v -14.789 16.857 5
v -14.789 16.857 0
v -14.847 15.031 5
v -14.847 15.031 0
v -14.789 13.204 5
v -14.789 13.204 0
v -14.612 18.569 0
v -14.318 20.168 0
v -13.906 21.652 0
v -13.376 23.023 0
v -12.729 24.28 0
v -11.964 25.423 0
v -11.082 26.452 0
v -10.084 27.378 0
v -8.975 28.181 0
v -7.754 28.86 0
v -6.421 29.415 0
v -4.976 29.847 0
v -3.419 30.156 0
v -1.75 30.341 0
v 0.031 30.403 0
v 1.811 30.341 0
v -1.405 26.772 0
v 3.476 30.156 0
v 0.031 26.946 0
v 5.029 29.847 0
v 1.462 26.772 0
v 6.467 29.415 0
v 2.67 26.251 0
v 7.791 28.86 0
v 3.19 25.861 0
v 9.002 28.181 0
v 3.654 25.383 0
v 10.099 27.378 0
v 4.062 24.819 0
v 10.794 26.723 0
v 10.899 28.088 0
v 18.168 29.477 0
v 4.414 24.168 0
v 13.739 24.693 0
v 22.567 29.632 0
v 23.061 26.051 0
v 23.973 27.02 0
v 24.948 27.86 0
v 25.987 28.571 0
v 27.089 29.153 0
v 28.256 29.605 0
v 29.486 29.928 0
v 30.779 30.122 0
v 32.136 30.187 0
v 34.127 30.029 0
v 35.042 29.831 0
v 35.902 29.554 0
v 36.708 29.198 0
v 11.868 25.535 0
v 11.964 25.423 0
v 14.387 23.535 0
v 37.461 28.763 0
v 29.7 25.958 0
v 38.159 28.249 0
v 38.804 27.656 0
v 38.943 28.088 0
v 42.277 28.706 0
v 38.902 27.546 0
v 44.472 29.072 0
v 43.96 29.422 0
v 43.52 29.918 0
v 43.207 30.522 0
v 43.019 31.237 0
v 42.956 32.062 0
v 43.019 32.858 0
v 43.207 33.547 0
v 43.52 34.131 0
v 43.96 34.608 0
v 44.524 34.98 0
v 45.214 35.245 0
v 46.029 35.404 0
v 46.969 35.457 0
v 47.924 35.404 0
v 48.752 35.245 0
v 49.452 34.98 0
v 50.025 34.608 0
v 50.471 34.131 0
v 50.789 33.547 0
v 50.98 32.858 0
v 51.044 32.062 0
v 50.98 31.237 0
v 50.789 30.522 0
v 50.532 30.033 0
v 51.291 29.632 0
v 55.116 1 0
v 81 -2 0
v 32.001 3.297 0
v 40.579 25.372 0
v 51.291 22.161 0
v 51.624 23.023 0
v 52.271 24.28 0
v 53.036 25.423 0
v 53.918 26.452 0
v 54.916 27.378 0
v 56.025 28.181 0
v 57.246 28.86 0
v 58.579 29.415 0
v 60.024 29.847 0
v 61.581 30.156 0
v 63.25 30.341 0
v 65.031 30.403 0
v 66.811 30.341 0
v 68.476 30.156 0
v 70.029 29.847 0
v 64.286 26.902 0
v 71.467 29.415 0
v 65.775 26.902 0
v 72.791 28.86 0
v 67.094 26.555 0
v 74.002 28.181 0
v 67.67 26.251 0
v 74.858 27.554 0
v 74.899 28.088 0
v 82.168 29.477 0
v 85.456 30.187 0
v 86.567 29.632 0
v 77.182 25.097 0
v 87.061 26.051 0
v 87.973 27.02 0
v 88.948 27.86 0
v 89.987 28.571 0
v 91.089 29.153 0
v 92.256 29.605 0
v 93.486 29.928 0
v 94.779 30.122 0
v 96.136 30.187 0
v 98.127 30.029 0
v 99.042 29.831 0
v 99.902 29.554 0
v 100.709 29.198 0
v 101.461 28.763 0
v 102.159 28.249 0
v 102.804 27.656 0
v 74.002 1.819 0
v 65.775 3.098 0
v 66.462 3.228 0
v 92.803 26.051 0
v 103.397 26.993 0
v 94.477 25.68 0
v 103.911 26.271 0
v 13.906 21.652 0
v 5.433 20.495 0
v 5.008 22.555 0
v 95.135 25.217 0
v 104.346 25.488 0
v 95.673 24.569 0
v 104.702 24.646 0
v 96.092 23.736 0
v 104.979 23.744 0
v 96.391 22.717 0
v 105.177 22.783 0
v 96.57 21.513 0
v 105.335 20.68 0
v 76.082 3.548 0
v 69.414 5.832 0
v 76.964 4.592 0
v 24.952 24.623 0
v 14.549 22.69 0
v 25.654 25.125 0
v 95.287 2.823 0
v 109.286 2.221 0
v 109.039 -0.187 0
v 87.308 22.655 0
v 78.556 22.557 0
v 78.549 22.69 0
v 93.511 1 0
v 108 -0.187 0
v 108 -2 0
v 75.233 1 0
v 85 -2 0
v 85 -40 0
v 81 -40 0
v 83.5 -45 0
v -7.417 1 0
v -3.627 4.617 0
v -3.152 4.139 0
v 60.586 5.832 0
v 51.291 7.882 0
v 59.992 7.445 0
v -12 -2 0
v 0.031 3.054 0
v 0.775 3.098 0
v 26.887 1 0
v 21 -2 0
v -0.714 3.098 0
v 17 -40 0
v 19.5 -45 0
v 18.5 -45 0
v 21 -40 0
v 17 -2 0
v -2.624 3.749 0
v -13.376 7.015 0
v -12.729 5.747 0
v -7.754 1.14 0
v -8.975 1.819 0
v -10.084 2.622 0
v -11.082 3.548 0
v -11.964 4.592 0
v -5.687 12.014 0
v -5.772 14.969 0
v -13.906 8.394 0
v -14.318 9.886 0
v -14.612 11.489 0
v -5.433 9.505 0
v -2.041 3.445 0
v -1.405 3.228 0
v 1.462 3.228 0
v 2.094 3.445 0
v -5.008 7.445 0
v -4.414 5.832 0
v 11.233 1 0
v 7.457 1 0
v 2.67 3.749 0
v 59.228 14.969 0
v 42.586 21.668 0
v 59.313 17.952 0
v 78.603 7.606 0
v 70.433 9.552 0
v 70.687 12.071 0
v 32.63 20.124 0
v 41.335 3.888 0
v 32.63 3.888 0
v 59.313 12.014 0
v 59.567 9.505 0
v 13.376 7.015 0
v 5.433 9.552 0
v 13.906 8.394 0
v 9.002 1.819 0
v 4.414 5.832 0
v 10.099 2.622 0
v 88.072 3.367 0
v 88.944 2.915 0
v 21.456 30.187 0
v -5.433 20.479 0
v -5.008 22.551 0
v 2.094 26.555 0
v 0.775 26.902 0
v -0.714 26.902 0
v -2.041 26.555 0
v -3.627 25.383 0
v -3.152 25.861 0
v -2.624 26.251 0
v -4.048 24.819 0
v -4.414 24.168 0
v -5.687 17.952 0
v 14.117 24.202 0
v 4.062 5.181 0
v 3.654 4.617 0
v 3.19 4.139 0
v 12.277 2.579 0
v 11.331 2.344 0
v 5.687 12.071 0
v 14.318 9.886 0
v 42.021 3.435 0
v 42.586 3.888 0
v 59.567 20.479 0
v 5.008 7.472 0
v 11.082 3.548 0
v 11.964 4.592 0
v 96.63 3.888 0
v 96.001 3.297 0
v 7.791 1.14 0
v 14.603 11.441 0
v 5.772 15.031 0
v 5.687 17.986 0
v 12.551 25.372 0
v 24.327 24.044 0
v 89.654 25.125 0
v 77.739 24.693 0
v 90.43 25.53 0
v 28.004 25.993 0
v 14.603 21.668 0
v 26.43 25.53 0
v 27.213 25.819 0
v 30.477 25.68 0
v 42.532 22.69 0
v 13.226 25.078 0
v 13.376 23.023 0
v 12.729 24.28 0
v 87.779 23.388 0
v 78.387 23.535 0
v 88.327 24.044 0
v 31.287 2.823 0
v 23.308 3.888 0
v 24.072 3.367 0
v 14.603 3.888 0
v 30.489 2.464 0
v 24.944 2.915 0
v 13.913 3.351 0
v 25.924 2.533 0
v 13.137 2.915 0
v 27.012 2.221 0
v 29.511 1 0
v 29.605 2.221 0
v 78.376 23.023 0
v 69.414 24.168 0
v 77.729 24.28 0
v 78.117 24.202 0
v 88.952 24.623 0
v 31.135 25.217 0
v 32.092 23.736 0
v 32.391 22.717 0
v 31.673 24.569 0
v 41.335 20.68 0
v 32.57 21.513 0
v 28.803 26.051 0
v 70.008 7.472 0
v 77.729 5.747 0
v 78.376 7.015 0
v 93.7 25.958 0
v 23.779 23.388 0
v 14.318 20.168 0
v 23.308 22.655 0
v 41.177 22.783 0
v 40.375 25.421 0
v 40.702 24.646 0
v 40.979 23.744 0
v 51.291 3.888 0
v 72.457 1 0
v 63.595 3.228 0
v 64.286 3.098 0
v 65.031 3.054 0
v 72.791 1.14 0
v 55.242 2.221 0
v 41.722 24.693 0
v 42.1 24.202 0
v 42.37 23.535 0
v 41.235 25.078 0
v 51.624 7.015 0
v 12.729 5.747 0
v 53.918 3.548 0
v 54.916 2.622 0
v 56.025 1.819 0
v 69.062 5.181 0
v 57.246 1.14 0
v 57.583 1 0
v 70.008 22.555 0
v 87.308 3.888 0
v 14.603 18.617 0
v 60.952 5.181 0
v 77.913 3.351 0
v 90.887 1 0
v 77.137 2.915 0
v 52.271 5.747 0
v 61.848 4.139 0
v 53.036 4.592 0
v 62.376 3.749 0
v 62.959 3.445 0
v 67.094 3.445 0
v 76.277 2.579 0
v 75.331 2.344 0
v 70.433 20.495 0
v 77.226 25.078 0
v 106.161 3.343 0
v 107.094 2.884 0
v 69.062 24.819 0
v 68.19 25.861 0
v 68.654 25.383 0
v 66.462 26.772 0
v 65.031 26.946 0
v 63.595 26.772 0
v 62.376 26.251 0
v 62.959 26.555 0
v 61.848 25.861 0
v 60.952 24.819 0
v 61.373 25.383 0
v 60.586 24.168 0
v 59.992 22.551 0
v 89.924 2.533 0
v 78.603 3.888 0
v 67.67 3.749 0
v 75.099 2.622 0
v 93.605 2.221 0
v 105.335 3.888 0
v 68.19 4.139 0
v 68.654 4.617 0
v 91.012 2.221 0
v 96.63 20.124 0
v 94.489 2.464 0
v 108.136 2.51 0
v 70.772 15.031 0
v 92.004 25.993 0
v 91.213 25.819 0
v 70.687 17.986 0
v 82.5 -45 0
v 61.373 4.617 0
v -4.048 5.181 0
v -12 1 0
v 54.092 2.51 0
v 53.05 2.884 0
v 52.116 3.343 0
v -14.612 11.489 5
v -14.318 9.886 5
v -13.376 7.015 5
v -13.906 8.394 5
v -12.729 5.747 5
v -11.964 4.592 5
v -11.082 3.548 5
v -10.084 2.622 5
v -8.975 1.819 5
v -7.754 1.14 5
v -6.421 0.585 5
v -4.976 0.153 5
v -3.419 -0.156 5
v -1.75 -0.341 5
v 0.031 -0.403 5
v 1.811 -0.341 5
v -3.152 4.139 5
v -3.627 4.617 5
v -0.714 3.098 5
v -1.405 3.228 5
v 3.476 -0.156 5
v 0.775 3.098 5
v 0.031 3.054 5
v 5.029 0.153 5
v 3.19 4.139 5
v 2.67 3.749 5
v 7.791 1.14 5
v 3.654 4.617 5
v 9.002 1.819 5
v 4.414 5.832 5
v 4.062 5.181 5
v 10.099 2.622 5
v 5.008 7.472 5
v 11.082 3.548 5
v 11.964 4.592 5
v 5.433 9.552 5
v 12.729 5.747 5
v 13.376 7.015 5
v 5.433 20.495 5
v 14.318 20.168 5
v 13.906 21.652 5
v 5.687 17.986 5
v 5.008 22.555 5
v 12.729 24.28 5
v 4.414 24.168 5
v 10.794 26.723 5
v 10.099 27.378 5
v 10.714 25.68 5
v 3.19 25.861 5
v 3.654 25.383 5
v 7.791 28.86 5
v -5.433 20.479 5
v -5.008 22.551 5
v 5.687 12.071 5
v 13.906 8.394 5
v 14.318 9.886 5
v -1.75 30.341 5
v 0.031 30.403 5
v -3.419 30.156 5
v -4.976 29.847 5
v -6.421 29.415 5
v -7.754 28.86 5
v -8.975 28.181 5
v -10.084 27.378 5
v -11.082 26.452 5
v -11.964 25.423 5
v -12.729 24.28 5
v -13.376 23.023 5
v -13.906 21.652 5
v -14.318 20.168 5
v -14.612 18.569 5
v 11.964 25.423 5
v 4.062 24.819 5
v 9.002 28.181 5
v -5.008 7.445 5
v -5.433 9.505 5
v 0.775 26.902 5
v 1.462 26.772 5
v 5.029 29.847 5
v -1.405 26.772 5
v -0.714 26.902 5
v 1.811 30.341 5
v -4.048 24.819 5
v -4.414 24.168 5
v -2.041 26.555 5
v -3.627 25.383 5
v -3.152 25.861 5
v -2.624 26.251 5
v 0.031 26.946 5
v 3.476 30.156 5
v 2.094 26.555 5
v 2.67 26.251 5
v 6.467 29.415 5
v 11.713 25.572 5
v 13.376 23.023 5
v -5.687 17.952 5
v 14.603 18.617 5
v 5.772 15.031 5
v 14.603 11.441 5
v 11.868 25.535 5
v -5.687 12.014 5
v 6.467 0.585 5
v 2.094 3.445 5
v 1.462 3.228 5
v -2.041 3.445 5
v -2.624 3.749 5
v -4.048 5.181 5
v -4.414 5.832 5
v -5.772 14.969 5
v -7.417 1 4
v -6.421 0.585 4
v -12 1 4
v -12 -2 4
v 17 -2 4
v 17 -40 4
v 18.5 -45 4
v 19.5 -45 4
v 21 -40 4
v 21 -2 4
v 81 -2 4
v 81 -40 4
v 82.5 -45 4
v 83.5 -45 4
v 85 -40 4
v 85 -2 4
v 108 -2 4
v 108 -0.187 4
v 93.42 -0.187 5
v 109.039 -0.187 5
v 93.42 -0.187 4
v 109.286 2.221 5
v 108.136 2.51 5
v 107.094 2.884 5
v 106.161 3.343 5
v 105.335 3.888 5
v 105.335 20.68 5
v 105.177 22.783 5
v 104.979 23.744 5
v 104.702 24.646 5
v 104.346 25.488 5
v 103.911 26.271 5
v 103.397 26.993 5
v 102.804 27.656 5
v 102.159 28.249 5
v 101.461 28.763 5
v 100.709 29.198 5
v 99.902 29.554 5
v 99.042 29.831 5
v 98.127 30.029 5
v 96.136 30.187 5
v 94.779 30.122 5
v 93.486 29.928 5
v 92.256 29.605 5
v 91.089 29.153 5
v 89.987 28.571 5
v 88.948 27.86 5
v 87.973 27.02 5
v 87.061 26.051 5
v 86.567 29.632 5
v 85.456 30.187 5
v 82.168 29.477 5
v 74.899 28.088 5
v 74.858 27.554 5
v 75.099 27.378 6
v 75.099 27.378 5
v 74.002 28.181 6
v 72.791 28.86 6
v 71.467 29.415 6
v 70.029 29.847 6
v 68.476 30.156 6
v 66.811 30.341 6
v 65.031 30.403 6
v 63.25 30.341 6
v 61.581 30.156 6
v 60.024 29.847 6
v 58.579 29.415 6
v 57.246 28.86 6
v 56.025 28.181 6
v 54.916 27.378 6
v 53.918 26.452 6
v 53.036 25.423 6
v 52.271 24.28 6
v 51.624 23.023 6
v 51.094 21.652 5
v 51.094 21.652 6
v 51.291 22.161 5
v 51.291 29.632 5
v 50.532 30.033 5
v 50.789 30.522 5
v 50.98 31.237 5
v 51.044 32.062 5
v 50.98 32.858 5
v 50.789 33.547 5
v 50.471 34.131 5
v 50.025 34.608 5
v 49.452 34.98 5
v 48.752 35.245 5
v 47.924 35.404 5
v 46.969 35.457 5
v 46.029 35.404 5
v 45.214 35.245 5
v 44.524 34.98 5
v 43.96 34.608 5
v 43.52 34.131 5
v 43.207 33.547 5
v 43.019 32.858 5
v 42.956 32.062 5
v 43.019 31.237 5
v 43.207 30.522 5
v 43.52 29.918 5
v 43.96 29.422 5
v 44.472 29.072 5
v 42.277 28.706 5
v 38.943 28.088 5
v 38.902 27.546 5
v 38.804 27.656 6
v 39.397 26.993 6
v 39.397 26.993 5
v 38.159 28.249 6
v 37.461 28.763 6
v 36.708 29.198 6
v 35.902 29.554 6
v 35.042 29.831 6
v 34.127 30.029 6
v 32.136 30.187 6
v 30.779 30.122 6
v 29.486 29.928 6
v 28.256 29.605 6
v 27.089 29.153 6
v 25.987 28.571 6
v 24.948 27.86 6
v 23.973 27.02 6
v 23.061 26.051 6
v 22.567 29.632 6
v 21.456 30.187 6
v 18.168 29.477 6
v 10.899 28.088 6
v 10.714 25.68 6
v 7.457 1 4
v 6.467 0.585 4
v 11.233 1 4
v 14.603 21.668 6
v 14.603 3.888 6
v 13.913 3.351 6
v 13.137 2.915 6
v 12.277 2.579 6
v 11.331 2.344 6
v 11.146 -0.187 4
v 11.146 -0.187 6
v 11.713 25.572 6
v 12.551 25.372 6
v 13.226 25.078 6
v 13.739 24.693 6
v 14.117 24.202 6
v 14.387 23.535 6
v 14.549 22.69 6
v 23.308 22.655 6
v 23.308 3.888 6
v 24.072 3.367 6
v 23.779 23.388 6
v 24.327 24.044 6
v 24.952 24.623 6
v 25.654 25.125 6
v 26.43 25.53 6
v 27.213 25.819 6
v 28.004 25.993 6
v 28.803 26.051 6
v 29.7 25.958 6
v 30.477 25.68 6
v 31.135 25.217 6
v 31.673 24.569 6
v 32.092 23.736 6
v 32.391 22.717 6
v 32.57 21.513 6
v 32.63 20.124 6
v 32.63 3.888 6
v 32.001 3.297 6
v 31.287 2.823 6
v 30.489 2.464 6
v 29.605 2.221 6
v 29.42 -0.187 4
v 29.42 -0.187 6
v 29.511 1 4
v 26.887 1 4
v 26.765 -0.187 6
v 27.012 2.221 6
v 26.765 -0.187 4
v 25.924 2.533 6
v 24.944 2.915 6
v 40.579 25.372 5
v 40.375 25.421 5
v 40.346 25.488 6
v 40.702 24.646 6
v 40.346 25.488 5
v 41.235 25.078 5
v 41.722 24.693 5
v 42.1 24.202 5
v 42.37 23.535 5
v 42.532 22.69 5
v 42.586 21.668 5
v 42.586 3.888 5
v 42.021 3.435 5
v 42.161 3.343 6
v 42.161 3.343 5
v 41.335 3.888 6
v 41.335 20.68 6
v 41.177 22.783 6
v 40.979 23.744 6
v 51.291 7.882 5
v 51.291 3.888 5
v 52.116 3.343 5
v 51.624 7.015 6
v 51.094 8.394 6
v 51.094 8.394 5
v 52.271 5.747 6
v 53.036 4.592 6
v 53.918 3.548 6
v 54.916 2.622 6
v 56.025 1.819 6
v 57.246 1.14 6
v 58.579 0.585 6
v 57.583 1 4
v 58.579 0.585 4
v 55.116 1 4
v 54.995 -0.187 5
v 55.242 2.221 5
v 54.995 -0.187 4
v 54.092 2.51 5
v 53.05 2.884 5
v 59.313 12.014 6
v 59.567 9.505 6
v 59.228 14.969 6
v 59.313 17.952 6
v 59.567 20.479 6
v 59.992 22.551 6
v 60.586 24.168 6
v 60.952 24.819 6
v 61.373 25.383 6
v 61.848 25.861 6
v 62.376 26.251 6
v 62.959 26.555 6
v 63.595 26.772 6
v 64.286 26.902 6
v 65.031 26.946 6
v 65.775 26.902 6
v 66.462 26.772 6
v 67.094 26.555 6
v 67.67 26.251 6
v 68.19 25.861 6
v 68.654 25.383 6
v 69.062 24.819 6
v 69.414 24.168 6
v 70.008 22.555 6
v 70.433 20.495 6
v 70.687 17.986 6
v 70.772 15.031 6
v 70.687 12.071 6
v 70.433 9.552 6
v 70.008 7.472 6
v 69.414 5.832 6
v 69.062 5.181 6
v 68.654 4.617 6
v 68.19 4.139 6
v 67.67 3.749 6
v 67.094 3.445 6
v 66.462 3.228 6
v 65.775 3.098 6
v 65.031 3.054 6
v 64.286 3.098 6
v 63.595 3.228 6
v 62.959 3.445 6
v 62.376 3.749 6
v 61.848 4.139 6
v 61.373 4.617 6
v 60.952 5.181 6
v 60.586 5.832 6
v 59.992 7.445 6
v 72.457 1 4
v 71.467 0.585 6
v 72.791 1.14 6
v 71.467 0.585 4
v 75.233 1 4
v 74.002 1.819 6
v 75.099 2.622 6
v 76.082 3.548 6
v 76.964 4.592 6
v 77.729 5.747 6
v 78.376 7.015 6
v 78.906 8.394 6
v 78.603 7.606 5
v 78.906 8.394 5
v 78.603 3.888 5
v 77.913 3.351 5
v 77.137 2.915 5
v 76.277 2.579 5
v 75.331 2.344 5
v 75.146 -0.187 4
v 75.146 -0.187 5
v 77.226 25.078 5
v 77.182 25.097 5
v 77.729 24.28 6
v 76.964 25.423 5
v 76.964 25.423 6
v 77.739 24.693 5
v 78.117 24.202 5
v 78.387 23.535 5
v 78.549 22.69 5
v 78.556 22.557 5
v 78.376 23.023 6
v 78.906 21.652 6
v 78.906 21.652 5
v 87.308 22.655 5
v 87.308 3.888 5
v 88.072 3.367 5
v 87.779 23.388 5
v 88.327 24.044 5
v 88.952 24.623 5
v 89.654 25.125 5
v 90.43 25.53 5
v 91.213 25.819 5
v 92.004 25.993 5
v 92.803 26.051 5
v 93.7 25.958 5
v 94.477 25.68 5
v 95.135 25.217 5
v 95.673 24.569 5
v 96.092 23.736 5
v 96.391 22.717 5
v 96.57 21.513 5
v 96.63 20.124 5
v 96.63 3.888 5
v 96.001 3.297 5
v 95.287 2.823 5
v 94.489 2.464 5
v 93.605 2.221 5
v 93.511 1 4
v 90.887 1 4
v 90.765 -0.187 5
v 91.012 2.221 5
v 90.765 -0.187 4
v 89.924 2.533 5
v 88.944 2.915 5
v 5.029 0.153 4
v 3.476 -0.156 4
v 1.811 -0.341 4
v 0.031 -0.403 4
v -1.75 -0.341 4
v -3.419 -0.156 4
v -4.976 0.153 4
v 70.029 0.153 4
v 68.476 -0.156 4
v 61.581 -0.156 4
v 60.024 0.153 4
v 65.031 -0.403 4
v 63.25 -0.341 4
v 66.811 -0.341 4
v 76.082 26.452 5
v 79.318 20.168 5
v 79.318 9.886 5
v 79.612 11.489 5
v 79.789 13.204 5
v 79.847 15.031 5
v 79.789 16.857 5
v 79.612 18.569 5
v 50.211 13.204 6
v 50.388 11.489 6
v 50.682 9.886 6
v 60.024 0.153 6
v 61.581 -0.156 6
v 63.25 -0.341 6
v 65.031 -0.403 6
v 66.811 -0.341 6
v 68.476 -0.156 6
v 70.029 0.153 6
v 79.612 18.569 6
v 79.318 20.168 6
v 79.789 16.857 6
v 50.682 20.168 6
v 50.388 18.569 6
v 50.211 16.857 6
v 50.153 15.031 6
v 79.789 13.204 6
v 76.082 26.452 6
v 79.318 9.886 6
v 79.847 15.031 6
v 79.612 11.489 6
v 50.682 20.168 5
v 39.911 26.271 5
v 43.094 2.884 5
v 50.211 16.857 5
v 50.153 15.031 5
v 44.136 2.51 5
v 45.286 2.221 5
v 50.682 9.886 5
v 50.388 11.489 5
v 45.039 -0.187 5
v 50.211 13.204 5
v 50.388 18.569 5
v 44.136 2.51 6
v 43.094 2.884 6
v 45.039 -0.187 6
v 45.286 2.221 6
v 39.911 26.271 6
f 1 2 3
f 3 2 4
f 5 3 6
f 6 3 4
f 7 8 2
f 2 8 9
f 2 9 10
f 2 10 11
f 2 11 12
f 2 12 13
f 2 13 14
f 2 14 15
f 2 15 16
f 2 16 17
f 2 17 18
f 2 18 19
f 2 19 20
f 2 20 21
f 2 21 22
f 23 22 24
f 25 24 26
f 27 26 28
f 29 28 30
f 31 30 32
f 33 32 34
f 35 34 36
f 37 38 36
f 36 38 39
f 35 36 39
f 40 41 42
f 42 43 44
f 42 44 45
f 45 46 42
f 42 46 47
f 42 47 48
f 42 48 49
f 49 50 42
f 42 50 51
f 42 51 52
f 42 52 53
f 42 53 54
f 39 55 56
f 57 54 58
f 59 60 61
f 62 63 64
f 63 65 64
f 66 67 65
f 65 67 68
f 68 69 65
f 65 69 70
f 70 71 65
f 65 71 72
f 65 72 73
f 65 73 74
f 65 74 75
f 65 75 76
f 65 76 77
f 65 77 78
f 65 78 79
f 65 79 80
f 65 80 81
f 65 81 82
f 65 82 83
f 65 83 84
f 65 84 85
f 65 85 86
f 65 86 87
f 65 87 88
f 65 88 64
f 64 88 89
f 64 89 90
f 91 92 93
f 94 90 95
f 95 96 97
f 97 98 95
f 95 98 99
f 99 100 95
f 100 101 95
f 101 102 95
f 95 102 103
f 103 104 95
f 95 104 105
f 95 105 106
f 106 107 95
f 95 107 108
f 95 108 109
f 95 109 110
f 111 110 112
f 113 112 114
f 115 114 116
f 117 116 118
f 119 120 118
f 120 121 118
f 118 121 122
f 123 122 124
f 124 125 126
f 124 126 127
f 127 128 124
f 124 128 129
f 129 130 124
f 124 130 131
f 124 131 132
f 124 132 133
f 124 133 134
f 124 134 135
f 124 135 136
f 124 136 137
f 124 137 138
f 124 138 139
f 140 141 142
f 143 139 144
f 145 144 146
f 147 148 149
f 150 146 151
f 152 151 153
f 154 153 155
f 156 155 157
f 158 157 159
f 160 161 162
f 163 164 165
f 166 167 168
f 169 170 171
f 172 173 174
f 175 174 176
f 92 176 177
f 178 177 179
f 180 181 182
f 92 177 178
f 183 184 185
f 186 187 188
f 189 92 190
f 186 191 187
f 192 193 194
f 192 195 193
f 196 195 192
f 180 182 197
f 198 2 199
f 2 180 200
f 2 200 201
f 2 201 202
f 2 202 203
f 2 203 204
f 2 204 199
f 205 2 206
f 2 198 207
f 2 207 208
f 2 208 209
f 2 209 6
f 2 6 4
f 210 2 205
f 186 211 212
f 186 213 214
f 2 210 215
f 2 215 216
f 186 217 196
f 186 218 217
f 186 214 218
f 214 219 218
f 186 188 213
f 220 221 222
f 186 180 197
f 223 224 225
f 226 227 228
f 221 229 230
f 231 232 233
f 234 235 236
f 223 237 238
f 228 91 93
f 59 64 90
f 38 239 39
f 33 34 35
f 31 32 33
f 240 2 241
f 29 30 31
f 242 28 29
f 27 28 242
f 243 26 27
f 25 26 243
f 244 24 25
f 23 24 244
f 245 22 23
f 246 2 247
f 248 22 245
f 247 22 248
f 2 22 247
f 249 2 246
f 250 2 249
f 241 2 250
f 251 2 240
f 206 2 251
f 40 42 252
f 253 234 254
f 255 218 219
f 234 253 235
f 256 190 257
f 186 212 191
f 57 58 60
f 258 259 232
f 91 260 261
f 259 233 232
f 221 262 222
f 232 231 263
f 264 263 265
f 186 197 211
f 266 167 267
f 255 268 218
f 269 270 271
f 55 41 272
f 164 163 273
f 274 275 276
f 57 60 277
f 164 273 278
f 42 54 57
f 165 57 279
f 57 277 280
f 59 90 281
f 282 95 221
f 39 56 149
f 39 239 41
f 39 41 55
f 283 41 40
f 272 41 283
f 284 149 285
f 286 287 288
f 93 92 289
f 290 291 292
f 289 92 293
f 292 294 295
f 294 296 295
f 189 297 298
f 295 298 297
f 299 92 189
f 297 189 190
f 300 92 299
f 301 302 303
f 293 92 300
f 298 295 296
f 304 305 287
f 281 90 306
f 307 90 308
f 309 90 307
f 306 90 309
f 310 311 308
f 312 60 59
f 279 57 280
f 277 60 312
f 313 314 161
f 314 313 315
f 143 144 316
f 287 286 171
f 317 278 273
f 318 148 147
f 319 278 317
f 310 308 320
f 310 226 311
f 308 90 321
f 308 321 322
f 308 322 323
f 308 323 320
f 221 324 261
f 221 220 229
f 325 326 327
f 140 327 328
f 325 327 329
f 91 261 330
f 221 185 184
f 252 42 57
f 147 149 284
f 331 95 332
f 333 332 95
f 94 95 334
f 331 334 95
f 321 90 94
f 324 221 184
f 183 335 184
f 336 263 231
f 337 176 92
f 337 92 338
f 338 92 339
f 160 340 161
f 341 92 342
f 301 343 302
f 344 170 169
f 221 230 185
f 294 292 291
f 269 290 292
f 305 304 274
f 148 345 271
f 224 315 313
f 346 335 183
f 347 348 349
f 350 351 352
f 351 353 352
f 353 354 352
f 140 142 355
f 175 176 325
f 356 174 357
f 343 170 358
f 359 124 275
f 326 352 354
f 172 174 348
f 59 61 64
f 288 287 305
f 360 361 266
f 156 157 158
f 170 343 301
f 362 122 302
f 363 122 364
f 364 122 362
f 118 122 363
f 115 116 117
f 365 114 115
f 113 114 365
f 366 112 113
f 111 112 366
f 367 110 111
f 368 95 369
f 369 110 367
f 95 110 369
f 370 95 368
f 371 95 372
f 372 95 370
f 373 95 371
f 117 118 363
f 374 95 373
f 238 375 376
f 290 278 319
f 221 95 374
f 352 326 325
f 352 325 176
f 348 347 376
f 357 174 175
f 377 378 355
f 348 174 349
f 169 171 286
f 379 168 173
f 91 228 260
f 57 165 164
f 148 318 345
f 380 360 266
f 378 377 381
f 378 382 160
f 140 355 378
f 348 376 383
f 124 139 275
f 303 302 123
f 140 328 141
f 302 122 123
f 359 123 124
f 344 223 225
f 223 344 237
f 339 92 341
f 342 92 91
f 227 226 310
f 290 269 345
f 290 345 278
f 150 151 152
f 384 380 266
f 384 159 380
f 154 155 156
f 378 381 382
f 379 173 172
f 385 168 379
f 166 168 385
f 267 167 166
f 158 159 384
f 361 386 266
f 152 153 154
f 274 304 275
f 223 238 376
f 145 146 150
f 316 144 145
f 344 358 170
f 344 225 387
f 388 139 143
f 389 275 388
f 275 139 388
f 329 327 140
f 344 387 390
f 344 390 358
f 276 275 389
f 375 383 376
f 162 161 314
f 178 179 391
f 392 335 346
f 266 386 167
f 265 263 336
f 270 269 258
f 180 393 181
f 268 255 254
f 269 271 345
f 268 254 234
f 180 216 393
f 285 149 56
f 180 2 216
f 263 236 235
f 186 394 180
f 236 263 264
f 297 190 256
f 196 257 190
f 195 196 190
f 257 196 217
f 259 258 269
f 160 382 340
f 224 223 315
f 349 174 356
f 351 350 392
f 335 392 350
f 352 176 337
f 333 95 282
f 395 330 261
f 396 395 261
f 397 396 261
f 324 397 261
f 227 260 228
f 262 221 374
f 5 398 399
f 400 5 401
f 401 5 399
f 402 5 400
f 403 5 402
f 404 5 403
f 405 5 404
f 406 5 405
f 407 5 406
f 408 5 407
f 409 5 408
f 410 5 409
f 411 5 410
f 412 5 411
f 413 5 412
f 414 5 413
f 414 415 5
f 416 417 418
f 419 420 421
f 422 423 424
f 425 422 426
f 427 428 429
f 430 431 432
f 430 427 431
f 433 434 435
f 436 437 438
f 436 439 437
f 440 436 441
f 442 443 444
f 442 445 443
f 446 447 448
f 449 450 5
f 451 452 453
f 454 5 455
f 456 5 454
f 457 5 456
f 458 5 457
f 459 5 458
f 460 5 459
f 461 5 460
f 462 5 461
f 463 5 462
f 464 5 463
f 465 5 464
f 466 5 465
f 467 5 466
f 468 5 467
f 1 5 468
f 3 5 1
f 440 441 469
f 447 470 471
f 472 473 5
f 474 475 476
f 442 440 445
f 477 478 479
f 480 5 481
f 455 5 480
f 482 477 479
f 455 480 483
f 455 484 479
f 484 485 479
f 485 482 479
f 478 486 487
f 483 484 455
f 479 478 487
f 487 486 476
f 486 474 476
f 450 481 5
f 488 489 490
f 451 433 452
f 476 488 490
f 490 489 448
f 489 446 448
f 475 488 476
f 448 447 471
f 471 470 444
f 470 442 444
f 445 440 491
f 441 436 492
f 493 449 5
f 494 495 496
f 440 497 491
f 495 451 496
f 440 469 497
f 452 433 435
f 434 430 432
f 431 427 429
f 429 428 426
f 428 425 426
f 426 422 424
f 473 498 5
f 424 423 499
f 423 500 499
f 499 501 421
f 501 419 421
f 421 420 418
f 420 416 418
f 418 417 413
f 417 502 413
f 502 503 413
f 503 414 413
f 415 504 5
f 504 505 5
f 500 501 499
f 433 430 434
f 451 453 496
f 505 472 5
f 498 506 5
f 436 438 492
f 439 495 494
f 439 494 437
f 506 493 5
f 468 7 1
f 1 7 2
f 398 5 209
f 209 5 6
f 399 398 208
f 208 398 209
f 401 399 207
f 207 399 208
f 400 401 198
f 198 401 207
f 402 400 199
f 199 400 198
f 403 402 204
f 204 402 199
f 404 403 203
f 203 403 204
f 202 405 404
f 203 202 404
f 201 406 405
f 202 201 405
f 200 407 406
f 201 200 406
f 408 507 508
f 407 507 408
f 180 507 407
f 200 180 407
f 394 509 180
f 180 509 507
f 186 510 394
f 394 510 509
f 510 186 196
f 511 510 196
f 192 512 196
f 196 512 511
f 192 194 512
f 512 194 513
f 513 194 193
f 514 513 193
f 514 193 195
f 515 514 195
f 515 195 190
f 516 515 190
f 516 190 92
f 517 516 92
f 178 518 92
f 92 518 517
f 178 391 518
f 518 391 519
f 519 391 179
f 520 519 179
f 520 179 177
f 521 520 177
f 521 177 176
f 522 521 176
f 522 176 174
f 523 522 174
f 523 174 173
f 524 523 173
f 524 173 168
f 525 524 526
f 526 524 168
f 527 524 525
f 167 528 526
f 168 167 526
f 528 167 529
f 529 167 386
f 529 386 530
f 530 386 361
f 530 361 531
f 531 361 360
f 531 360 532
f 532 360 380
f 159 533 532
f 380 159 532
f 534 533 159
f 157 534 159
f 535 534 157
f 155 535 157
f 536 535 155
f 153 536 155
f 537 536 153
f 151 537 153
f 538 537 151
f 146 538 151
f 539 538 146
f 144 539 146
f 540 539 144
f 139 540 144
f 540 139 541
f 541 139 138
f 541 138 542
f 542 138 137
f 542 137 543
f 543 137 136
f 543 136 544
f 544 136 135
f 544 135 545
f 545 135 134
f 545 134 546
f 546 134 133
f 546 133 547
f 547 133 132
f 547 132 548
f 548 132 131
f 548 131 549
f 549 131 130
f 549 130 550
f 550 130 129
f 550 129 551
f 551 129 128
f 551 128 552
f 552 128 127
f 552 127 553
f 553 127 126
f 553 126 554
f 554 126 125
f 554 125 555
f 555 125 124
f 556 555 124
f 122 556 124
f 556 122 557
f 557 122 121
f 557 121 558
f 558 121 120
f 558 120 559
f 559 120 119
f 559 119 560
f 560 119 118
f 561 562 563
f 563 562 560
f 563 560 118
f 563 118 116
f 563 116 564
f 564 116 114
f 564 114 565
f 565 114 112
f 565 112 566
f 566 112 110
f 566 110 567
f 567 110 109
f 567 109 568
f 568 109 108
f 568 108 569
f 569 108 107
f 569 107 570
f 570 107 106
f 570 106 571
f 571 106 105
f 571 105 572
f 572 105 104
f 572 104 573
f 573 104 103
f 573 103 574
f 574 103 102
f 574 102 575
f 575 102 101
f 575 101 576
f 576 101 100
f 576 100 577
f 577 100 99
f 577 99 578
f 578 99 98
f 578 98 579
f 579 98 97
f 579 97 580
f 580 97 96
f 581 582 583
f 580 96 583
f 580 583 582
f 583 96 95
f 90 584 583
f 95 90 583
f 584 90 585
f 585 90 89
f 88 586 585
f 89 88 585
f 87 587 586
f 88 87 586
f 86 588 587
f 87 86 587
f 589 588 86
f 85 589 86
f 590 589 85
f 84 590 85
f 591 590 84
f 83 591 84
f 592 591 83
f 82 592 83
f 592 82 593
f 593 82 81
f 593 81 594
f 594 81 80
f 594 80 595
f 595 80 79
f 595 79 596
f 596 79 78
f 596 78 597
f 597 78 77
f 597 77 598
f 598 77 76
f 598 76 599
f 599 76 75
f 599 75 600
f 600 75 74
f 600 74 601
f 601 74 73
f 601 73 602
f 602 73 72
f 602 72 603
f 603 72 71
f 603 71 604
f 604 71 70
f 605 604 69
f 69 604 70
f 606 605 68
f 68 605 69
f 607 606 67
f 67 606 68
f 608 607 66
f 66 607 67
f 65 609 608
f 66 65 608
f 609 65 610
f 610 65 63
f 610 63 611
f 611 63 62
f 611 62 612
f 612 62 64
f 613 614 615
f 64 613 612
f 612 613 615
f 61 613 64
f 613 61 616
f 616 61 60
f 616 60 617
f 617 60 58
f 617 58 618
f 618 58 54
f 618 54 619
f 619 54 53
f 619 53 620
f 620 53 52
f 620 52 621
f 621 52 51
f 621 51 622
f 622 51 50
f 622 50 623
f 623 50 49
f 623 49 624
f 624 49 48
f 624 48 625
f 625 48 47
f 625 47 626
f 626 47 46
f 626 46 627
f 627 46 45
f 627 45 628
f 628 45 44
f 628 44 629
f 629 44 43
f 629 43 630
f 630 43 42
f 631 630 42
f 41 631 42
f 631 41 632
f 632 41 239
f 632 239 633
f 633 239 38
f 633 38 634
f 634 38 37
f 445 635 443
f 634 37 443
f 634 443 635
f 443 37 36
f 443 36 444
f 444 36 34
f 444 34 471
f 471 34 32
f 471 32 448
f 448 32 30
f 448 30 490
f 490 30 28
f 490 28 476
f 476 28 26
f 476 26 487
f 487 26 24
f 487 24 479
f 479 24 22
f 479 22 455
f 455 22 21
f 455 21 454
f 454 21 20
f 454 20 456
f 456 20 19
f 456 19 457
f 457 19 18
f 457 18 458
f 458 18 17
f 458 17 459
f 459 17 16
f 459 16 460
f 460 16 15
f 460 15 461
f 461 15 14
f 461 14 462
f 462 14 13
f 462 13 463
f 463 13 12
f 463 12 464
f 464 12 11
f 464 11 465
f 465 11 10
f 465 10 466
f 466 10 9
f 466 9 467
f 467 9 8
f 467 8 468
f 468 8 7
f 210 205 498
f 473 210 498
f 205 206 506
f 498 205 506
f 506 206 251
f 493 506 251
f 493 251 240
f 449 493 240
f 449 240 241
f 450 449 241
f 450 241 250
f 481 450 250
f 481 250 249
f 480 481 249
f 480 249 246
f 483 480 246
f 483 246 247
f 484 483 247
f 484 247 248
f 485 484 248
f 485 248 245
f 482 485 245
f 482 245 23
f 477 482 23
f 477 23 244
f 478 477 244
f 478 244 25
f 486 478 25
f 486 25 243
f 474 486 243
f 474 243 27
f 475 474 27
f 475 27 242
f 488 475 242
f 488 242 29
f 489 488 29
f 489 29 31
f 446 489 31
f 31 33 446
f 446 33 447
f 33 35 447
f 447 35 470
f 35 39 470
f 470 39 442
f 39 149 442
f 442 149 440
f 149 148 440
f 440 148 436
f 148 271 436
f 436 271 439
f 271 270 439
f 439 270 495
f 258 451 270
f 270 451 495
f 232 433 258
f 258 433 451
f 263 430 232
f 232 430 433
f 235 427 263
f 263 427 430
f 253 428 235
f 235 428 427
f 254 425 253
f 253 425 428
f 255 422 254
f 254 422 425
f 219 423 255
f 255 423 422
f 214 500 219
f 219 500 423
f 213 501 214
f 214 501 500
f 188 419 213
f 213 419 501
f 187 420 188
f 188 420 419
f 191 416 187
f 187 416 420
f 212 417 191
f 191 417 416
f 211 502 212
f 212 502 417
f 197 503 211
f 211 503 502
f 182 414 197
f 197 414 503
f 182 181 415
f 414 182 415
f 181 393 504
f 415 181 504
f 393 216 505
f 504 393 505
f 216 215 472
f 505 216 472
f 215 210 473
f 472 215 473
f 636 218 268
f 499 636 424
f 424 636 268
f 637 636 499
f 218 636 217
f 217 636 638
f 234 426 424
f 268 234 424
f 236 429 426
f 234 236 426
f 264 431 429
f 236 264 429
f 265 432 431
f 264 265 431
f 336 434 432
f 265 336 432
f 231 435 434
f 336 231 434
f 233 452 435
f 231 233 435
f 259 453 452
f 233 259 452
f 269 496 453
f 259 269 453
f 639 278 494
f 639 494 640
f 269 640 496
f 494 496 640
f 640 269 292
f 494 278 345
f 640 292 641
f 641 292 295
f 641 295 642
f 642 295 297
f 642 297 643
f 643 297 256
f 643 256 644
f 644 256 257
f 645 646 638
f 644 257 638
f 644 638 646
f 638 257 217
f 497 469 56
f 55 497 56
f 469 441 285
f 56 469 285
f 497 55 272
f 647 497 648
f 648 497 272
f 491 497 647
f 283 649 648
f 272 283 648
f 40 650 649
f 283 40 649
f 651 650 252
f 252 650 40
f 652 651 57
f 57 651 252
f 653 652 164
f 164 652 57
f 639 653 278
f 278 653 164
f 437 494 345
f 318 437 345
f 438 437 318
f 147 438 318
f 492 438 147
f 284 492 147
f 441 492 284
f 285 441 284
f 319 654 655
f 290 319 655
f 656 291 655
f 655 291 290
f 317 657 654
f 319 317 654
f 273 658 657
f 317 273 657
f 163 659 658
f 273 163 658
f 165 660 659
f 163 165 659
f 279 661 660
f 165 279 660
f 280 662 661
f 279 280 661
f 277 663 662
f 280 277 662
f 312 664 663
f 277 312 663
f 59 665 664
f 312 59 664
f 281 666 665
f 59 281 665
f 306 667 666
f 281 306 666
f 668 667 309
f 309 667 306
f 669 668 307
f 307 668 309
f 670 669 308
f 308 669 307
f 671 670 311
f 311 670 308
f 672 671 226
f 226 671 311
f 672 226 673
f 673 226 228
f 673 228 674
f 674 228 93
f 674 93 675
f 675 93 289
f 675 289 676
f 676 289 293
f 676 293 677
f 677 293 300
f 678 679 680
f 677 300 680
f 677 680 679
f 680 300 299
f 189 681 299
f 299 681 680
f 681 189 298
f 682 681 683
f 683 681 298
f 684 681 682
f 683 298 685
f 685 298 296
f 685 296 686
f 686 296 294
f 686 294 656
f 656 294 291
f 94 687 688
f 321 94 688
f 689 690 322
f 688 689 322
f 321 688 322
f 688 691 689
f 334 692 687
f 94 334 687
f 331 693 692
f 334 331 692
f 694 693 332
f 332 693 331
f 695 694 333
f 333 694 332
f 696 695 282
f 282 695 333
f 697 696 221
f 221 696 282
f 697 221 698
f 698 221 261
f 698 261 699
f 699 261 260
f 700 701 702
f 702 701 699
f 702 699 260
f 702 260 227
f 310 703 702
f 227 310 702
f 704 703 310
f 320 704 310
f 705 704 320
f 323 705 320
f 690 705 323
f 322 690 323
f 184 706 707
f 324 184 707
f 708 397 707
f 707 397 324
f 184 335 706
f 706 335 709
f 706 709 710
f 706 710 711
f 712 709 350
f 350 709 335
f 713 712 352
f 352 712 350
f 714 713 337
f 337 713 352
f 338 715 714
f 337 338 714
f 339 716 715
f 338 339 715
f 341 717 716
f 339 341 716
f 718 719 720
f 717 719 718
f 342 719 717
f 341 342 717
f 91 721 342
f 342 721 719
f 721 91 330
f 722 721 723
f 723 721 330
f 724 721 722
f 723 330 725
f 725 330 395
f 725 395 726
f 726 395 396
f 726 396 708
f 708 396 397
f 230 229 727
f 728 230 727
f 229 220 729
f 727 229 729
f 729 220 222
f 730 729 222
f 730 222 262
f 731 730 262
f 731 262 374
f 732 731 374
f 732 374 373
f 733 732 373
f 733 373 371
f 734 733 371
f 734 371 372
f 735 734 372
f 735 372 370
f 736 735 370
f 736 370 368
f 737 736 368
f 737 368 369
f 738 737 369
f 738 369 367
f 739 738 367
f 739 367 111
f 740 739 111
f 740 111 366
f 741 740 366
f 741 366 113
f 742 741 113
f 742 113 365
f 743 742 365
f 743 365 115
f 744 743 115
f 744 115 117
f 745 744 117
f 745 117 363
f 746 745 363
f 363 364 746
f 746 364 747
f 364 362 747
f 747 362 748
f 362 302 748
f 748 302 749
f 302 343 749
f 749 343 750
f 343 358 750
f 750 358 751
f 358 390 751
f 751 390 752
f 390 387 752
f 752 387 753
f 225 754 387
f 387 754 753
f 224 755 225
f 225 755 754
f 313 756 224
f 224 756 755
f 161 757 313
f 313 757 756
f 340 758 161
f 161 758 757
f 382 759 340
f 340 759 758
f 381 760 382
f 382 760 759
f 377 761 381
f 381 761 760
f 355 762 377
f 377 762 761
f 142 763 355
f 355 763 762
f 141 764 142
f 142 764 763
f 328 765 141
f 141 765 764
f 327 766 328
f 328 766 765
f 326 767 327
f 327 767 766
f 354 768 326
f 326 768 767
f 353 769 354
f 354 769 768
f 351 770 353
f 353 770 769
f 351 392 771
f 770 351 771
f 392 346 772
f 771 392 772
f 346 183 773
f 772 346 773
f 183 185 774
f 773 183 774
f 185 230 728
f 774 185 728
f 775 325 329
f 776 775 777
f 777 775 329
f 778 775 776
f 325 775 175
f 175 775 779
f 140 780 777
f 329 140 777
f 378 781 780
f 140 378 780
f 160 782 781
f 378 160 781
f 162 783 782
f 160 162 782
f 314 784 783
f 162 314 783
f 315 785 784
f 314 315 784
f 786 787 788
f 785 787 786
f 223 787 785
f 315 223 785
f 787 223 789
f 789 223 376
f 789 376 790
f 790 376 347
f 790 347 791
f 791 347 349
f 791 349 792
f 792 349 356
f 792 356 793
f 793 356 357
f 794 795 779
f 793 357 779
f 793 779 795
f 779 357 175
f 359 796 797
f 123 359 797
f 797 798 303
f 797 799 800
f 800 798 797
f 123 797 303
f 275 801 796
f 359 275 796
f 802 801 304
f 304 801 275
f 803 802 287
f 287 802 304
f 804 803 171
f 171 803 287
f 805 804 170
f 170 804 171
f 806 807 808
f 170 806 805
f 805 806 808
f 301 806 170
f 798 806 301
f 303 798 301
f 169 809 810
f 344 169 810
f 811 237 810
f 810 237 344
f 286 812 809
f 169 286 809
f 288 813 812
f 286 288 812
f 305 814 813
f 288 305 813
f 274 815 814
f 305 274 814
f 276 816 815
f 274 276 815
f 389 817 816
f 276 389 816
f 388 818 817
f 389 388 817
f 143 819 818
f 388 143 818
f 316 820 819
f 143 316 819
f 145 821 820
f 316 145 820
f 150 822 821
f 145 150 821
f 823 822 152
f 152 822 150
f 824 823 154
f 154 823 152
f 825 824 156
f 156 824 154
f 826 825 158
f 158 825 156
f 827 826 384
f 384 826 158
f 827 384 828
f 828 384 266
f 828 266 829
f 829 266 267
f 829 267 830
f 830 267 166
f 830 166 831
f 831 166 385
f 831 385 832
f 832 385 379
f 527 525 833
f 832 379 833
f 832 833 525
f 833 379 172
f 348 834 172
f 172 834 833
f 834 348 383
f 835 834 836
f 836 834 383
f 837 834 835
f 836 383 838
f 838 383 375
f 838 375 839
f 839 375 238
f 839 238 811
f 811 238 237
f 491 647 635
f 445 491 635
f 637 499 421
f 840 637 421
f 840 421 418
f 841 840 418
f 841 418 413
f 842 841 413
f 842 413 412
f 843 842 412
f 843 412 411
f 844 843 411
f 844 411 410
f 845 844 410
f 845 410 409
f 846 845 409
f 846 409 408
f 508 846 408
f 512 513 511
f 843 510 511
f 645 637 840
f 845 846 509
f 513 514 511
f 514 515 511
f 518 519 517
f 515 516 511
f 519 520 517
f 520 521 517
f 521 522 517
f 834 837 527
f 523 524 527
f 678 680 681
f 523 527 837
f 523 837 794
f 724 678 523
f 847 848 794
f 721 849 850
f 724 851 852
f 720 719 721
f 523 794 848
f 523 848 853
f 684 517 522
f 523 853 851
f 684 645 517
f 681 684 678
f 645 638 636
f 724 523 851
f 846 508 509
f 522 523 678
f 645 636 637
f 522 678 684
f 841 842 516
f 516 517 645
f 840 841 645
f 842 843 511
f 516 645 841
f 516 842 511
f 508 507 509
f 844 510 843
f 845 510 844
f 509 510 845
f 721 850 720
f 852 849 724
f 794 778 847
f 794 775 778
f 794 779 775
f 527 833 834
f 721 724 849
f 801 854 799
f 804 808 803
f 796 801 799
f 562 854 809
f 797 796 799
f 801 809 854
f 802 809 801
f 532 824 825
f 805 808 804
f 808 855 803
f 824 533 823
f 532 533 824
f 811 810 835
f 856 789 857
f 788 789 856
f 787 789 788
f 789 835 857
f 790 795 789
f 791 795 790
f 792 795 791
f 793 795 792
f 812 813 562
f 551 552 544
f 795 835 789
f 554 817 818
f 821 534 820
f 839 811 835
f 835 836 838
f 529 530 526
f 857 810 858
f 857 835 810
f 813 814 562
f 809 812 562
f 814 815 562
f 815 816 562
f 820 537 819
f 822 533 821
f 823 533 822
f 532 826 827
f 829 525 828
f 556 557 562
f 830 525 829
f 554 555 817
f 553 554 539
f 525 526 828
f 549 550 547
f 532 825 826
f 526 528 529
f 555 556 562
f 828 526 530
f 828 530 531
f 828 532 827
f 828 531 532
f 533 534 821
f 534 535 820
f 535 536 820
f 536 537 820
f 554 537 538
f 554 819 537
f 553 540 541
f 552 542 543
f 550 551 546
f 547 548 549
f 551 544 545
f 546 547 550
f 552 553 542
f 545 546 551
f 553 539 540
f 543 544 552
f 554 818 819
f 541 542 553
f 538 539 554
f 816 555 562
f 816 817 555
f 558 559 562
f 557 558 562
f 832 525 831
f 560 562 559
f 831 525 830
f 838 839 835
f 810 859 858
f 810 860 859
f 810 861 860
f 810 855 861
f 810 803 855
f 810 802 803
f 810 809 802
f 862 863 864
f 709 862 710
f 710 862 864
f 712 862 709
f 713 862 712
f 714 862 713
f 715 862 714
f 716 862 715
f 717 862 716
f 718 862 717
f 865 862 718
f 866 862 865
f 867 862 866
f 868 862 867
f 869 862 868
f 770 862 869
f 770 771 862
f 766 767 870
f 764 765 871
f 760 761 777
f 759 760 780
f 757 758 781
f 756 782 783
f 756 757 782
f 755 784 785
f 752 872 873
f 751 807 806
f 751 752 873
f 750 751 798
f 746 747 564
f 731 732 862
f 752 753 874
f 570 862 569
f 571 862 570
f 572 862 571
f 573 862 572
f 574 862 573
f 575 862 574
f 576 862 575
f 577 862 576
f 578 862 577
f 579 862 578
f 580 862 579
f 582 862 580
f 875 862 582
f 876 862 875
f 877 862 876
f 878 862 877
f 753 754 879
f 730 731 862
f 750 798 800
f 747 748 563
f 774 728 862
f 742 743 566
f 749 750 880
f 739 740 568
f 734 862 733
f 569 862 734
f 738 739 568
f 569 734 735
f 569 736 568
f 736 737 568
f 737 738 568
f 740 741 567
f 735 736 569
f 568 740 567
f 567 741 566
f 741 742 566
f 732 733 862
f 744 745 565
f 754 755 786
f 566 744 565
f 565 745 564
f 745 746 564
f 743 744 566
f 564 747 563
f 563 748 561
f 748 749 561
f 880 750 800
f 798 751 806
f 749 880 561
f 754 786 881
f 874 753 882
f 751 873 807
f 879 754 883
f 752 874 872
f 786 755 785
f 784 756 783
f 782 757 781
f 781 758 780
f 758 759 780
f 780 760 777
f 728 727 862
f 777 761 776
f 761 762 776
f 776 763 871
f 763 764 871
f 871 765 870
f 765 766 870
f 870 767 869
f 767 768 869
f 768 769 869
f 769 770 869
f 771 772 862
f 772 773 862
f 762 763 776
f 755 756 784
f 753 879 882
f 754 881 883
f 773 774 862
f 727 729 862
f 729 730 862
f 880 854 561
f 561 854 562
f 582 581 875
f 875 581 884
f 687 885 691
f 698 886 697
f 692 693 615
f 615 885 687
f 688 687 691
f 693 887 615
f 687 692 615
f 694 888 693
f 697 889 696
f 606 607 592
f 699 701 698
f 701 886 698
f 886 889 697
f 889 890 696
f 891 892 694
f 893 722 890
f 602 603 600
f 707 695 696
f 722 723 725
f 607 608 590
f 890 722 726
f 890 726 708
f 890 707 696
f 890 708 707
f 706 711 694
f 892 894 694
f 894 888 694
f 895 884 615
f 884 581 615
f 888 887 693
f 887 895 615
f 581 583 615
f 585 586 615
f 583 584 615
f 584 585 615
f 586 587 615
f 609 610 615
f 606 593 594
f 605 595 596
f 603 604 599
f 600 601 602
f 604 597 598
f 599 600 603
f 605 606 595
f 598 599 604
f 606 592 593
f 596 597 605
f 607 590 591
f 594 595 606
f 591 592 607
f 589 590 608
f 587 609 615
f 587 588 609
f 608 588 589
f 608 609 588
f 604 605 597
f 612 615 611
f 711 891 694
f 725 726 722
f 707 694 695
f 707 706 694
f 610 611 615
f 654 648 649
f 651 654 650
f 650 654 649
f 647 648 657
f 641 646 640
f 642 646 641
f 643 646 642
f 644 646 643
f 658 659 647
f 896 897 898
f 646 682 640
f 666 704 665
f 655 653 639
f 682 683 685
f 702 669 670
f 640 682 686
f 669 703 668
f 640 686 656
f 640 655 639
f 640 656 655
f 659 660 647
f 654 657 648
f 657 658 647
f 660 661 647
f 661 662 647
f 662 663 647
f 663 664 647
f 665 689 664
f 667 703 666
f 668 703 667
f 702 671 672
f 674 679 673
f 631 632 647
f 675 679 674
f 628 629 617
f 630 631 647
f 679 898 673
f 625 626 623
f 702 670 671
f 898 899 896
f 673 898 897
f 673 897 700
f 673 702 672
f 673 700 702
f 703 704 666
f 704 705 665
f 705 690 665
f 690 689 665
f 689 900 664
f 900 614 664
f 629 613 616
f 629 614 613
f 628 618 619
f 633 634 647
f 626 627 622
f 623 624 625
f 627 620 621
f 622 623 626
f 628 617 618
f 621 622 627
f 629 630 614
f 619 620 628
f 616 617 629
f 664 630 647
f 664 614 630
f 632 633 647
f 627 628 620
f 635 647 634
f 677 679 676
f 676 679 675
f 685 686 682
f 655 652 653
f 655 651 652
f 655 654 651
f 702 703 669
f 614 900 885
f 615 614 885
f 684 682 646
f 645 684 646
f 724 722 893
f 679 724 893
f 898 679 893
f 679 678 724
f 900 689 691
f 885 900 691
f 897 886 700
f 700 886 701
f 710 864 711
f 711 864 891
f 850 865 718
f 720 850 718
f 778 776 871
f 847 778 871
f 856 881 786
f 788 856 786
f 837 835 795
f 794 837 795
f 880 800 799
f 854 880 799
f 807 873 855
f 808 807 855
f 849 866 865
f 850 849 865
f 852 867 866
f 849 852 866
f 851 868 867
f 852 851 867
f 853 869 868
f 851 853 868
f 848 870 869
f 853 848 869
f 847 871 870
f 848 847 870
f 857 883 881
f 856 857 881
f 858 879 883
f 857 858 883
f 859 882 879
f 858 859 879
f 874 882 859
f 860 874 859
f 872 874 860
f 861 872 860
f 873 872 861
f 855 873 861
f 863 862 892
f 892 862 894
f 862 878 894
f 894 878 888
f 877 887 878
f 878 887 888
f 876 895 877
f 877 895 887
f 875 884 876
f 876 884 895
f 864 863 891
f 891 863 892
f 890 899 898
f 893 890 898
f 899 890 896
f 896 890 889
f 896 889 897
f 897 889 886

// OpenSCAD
fudge = 0.1;


include <letters.scad>;

module nail(l,w,h){
	hull(){
	translate([-w/2,5,0]) cube([w,l,h]);
	translate([-0.5,0,0]) cube([1,1,h]);
	}
}

translate([0,15,0]) letter_o(5);
translate([28,15.0,0]) letter_n(6);
translate([47,15,0]) letter_i(5);
translate([47,32,0]) dot(5);
translate([65,15.0,0]) letter_o(6);
translate([92,15,0]) letter_n(5);


translate([-12,-2,0]) cube([120,3,4]);

translate([19,-45,0]) nail(40,4,4);
translate([83,-45,0]) nail(40,4,4);	
